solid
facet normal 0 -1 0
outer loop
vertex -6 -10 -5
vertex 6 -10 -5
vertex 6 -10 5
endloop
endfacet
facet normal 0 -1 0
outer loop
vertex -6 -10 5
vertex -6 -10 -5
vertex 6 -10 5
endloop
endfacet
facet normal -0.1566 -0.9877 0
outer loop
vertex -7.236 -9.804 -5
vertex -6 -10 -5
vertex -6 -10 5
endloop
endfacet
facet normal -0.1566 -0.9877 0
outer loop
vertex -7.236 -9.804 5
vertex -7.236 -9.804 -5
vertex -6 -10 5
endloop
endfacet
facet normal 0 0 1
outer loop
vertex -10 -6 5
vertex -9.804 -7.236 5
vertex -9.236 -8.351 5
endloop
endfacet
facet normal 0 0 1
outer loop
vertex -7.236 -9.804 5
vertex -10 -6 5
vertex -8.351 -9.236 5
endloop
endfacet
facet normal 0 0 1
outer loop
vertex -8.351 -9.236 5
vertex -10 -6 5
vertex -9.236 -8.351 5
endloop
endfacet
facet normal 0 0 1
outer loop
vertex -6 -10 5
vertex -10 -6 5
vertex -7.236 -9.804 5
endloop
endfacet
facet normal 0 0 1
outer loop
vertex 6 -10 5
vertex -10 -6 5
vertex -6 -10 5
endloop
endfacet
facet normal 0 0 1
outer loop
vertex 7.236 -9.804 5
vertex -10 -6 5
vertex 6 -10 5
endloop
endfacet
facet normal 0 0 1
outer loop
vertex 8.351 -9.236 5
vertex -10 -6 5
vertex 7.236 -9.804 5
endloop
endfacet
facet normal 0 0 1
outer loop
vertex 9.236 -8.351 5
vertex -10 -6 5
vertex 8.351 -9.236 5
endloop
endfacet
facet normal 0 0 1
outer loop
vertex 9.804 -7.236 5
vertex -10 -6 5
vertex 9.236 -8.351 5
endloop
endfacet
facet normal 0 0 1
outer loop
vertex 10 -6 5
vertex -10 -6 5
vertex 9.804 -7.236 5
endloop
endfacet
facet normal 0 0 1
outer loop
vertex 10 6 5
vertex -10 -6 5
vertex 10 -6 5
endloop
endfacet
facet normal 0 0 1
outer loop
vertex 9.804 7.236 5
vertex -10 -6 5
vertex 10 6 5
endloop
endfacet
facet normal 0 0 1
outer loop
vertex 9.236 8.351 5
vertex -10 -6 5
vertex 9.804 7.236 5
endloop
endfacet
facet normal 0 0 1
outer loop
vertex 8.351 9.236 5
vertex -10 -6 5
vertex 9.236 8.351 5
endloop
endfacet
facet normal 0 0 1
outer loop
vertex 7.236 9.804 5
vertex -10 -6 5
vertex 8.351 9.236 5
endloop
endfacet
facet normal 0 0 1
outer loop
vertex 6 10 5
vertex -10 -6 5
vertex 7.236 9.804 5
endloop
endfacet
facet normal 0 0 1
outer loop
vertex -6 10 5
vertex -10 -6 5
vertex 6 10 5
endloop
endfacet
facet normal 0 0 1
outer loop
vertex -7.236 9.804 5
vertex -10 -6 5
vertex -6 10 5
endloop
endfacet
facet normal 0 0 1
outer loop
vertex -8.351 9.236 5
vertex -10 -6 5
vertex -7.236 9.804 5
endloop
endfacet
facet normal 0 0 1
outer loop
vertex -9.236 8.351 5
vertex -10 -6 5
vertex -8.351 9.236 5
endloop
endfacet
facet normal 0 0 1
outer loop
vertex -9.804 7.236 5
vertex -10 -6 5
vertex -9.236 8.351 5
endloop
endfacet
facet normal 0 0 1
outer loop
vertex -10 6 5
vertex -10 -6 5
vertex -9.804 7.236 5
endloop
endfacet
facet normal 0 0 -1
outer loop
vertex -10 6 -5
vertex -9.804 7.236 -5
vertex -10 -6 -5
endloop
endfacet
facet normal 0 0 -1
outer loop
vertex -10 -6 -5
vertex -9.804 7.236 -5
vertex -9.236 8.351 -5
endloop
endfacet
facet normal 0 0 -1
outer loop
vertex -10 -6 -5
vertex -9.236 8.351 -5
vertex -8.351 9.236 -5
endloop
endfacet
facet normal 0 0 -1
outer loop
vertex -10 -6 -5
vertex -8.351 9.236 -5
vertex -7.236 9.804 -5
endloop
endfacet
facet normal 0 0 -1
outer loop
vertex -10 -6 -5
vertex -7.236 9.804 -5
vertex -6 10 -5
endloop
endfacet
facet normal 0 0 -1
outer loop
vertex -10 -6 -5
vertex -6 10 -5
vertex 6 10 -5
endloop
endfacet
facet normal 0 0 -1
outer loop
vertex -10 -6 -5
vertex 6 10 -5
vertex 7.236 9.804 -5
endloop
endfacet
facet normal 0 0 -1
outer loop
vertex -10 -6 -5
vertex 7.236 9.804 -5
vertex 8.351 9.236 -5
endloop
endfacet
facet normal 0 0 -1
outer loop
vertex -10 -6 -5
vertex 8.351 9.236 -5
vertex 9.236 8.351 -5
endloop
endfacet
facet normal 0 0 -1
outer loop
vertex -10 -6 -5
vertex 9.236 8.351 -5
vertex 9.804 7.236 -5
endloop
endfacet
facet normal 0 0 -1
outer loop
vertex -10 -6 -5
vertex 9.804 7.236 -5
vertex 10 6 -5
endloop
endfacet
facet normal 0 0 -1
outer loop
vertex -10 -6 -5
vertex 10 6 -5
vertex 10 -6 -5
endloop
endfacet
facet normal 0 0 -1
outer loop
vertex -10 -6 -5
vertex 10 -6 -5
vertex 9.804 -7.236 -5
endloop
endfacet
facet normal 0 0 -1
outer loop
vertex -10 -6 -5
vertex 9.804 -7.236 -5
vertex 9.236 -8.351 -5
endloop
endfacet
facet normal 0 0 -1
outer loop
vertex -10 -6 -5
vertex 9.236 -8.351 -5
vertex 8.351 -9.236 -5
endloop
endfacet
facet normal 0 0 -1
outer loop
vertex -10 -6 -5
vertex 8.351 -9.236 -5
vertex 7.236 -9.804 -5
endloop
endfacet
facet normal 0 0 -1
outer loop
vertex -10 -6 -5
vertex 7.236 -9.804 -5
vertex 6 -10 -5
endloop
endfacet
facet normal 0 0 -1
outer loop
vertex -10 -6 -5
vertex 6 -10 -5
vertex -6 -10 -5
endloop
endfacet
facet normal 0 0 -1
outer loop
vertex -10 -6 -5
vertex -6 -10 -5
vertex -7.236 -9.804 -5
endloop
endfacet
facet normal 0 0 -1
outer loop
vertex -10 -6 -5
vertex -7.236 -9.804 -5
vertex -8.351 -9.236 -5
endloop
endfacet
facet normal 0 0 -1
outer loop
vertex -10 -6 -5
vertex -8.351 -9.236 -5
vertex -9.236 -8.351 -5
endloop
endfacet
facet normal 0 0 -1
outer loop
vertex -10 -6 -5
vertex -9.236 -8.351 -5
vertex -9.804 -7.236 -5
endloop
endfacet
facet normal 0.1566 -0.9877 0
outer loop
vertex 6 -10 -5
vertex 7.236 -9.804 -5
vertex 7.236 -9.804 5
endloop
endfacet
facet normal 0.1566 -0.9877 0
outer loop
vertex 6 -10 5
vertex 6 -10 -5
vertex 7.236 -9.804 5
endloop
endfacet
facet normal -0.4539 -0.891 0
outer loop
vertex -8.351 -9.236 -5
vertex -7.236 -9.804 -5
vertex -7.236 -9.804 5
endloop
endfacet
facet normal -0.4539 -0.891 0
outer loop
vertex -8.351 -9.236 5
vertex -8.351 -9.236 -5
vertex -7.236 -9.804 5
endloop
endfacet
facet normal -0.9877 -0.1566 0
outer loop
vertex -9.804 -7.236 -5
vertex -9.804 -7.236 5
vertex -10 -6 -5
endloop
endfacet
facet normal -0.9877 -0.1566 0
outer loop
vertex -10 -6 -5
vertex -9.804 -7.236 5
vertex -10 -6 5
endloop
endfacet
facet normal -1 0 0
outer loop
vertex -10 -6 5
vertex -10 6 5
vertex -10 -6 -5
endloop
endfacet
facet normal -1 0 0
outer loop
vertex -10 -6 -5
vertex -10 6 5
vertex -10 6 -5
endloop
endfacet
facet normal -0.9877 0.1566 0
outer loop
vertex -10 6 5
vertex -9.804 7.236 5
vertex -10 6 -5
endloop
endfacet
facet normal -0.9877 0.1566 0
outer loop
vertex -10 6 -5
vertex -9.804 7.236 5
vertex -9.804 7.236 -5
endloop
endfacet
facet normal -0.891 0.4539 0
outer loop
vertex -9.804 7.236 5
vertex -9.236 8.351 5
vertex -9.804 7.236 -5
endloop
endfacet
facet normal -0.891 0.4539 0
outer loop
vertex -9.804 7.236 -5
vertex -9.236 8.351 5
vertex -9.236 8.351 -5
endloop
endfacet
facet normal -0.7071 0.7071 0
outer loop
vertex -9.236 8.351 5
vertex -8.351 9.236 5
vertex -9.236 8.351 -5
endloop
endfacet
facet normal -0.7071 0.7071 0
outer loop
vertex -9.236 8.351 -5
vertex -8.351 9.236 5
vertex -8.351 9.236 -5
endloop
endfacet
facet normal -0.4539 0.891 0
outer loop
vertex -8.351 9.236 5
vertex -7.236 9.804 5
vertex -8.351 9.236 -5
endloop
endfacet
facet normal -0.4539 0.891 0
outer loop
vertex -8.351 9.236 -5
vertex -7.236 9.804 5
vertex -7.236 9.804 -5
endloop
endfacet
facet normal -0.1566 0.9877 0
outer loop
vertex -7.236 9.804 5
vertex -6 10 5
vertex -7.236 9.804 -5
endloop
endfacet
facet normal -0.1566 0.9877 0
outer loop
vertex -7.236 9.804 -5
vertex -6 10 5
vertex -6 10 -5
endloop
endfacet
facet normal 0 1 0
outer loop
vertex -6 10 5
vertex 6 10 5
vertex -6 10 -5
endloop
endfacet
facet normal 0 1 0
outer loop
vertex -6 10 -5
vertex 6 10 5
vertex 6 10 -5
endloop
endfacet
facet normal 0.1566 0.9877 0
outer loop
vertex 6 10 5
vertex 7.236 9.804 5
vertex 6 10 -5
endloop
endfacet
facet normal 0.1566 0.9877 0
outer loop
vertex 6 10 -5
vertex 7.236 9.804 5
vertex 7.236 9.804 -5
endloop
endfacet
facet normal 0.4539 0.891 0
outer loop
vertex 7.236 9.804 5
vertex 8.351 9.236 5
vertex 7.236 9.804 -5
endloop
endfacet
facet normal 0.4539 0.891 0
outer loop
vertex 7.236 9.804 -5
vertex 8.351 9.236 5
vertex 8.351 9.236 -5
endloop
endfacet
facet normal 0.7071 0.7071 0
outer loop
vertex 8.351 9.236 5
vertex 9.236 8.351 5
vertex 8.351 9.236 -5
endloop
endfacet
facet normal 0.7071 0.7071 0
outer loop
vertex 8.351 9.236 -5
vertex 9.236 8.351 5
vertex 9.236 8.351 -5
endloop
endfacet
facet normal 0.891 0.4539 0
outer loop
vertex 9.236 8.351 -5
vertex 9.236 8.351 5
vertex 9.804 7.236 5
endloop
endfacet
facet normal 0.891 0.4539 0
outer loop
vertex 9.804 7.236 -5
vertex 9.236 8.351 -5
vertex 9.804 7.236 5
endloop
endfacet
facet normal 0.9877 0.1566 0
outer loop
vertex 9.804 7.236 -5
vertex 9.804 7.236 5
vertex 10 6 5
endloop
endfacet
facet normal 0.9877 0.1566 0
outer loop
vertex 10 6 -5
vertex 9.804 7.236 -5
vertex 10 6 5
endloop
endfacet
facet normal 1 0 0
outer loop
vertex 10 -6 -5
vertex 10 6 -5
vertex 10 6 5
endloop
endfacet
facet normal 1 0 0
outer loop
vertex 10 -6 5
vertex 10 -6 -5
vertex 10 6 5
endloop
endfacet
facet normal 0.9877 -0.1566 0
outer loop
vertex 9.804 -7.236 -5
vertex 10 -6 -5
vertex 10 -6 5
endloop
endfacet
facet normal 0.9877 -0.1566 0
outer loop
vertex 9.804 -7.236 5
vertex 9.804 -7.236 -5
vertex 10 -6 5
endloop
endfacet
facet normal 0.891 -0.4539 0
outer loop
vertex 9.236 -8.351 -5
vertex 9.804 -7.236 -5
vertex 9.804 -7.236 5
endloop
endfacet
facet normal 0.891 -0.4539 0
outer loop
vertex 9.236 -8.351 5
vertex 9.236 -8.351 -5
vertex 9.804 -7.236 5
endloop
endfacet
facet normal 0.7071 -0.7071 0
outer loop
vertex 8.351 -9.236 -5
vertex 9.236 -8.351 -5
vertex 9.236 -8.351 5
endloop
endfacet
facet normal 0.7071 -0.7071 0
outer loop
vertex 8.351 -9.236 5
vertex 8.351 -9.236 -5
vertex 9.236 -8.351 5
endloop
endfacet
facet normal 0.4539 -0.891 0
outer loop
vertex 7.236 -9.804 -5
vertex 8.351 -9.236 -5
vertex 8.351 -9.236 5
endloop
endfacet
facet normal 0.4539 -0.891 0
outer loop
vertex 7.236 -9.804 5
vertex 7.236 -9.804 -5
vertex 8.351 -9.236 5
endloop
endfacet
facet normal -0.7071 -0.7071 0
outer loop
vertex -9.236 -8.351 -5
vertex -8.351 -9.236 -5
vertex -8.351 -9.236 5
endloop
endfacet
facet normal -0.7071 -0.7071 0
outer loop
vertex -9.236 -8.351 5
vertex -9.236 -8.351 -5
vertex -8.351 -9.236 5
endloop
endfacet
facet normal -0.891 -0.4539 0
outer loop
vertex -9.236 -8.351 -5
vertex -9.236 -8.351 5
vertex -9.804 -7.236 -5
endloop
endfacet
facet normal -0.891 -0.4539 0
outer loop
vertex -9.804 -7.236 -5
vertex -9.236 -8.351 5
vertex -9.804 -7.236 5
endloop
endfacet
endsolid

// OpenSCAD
// file: obiscad/bcube.scad
//------------------------------------------------------------------------------
//  Bevel edge cube.
//  (c) Juan Gonzalez-Gomez (Obijuan), Sep-2012
//------------------------------------------------------------------------------

//----------------- IMPLEMENTATION USING THE MINKOWSKI OPERATOR ----------------

//------------------------------------------------------------------------------
//-- Bevel Cube main function
//-- Parameters:
//--   * Size:  Cube size
//--   * cr : Corner radius (if cr==0, a standar cube is built)
//--   * cres:  Corner resolution (in points). cres=0 means flat corners
//------------------------------------------------------------------------------
module bcube(size,cr=0,cres=0)
{
  //-- Internal cube size
  bsize = size - 2*[cr,cr,0];

  //-- Get the (x,y) coorner coordinates in the 1st cuadrant
  x = bsize[0]/2;
  y = bsize[1]/2;

  //-- A corner radius of 0 means a standar cube!
  if (cr==0)
    cube(bsize,center=true);
  else {

      
      //-- The height of minkowski object is double. So
      //-- we sould scale by 0.5
      scale([1,1,0.5])

      //-- This translation is for centering the minkowski objet
      translate([-x, -y,0])

      //-- Built the  beveled cube with minkowski
      minkowski() {

        //-- Internal cube
        cube(bsize,center=true);

        //-- Cylinder in the corner (1st cuadrant)
        translate([x,y, 0])
          cylinder(r=cr, h=bsize[2],center=true, $fn=4*(cres+1));
      }
  }

}


//-- Examples of use of the bcube() module

//-- Standar cube
translate([-15,15,0])
bcube([20,20,10]);

//-- Beveled cube (0 point resolution)
translate([15,15,0])
  bcube([20,20,10],cr=4);

//-- Beveled cube (1 point resolution)
translate([-15,-15,0])
  bcube([20,20,10],cr=4, cres=1);

//-- Beveled cube (4 points resolution)
translate([15,-15,0])
  bcube([20,20,10],cr=4, cres=4);
// main file
use <obiscad/bcube.scad>

//-- Beveled cube (4 points resolution)
//-- It is a calibration cube
bcube([20,20,10],cr=4, cres=4);
